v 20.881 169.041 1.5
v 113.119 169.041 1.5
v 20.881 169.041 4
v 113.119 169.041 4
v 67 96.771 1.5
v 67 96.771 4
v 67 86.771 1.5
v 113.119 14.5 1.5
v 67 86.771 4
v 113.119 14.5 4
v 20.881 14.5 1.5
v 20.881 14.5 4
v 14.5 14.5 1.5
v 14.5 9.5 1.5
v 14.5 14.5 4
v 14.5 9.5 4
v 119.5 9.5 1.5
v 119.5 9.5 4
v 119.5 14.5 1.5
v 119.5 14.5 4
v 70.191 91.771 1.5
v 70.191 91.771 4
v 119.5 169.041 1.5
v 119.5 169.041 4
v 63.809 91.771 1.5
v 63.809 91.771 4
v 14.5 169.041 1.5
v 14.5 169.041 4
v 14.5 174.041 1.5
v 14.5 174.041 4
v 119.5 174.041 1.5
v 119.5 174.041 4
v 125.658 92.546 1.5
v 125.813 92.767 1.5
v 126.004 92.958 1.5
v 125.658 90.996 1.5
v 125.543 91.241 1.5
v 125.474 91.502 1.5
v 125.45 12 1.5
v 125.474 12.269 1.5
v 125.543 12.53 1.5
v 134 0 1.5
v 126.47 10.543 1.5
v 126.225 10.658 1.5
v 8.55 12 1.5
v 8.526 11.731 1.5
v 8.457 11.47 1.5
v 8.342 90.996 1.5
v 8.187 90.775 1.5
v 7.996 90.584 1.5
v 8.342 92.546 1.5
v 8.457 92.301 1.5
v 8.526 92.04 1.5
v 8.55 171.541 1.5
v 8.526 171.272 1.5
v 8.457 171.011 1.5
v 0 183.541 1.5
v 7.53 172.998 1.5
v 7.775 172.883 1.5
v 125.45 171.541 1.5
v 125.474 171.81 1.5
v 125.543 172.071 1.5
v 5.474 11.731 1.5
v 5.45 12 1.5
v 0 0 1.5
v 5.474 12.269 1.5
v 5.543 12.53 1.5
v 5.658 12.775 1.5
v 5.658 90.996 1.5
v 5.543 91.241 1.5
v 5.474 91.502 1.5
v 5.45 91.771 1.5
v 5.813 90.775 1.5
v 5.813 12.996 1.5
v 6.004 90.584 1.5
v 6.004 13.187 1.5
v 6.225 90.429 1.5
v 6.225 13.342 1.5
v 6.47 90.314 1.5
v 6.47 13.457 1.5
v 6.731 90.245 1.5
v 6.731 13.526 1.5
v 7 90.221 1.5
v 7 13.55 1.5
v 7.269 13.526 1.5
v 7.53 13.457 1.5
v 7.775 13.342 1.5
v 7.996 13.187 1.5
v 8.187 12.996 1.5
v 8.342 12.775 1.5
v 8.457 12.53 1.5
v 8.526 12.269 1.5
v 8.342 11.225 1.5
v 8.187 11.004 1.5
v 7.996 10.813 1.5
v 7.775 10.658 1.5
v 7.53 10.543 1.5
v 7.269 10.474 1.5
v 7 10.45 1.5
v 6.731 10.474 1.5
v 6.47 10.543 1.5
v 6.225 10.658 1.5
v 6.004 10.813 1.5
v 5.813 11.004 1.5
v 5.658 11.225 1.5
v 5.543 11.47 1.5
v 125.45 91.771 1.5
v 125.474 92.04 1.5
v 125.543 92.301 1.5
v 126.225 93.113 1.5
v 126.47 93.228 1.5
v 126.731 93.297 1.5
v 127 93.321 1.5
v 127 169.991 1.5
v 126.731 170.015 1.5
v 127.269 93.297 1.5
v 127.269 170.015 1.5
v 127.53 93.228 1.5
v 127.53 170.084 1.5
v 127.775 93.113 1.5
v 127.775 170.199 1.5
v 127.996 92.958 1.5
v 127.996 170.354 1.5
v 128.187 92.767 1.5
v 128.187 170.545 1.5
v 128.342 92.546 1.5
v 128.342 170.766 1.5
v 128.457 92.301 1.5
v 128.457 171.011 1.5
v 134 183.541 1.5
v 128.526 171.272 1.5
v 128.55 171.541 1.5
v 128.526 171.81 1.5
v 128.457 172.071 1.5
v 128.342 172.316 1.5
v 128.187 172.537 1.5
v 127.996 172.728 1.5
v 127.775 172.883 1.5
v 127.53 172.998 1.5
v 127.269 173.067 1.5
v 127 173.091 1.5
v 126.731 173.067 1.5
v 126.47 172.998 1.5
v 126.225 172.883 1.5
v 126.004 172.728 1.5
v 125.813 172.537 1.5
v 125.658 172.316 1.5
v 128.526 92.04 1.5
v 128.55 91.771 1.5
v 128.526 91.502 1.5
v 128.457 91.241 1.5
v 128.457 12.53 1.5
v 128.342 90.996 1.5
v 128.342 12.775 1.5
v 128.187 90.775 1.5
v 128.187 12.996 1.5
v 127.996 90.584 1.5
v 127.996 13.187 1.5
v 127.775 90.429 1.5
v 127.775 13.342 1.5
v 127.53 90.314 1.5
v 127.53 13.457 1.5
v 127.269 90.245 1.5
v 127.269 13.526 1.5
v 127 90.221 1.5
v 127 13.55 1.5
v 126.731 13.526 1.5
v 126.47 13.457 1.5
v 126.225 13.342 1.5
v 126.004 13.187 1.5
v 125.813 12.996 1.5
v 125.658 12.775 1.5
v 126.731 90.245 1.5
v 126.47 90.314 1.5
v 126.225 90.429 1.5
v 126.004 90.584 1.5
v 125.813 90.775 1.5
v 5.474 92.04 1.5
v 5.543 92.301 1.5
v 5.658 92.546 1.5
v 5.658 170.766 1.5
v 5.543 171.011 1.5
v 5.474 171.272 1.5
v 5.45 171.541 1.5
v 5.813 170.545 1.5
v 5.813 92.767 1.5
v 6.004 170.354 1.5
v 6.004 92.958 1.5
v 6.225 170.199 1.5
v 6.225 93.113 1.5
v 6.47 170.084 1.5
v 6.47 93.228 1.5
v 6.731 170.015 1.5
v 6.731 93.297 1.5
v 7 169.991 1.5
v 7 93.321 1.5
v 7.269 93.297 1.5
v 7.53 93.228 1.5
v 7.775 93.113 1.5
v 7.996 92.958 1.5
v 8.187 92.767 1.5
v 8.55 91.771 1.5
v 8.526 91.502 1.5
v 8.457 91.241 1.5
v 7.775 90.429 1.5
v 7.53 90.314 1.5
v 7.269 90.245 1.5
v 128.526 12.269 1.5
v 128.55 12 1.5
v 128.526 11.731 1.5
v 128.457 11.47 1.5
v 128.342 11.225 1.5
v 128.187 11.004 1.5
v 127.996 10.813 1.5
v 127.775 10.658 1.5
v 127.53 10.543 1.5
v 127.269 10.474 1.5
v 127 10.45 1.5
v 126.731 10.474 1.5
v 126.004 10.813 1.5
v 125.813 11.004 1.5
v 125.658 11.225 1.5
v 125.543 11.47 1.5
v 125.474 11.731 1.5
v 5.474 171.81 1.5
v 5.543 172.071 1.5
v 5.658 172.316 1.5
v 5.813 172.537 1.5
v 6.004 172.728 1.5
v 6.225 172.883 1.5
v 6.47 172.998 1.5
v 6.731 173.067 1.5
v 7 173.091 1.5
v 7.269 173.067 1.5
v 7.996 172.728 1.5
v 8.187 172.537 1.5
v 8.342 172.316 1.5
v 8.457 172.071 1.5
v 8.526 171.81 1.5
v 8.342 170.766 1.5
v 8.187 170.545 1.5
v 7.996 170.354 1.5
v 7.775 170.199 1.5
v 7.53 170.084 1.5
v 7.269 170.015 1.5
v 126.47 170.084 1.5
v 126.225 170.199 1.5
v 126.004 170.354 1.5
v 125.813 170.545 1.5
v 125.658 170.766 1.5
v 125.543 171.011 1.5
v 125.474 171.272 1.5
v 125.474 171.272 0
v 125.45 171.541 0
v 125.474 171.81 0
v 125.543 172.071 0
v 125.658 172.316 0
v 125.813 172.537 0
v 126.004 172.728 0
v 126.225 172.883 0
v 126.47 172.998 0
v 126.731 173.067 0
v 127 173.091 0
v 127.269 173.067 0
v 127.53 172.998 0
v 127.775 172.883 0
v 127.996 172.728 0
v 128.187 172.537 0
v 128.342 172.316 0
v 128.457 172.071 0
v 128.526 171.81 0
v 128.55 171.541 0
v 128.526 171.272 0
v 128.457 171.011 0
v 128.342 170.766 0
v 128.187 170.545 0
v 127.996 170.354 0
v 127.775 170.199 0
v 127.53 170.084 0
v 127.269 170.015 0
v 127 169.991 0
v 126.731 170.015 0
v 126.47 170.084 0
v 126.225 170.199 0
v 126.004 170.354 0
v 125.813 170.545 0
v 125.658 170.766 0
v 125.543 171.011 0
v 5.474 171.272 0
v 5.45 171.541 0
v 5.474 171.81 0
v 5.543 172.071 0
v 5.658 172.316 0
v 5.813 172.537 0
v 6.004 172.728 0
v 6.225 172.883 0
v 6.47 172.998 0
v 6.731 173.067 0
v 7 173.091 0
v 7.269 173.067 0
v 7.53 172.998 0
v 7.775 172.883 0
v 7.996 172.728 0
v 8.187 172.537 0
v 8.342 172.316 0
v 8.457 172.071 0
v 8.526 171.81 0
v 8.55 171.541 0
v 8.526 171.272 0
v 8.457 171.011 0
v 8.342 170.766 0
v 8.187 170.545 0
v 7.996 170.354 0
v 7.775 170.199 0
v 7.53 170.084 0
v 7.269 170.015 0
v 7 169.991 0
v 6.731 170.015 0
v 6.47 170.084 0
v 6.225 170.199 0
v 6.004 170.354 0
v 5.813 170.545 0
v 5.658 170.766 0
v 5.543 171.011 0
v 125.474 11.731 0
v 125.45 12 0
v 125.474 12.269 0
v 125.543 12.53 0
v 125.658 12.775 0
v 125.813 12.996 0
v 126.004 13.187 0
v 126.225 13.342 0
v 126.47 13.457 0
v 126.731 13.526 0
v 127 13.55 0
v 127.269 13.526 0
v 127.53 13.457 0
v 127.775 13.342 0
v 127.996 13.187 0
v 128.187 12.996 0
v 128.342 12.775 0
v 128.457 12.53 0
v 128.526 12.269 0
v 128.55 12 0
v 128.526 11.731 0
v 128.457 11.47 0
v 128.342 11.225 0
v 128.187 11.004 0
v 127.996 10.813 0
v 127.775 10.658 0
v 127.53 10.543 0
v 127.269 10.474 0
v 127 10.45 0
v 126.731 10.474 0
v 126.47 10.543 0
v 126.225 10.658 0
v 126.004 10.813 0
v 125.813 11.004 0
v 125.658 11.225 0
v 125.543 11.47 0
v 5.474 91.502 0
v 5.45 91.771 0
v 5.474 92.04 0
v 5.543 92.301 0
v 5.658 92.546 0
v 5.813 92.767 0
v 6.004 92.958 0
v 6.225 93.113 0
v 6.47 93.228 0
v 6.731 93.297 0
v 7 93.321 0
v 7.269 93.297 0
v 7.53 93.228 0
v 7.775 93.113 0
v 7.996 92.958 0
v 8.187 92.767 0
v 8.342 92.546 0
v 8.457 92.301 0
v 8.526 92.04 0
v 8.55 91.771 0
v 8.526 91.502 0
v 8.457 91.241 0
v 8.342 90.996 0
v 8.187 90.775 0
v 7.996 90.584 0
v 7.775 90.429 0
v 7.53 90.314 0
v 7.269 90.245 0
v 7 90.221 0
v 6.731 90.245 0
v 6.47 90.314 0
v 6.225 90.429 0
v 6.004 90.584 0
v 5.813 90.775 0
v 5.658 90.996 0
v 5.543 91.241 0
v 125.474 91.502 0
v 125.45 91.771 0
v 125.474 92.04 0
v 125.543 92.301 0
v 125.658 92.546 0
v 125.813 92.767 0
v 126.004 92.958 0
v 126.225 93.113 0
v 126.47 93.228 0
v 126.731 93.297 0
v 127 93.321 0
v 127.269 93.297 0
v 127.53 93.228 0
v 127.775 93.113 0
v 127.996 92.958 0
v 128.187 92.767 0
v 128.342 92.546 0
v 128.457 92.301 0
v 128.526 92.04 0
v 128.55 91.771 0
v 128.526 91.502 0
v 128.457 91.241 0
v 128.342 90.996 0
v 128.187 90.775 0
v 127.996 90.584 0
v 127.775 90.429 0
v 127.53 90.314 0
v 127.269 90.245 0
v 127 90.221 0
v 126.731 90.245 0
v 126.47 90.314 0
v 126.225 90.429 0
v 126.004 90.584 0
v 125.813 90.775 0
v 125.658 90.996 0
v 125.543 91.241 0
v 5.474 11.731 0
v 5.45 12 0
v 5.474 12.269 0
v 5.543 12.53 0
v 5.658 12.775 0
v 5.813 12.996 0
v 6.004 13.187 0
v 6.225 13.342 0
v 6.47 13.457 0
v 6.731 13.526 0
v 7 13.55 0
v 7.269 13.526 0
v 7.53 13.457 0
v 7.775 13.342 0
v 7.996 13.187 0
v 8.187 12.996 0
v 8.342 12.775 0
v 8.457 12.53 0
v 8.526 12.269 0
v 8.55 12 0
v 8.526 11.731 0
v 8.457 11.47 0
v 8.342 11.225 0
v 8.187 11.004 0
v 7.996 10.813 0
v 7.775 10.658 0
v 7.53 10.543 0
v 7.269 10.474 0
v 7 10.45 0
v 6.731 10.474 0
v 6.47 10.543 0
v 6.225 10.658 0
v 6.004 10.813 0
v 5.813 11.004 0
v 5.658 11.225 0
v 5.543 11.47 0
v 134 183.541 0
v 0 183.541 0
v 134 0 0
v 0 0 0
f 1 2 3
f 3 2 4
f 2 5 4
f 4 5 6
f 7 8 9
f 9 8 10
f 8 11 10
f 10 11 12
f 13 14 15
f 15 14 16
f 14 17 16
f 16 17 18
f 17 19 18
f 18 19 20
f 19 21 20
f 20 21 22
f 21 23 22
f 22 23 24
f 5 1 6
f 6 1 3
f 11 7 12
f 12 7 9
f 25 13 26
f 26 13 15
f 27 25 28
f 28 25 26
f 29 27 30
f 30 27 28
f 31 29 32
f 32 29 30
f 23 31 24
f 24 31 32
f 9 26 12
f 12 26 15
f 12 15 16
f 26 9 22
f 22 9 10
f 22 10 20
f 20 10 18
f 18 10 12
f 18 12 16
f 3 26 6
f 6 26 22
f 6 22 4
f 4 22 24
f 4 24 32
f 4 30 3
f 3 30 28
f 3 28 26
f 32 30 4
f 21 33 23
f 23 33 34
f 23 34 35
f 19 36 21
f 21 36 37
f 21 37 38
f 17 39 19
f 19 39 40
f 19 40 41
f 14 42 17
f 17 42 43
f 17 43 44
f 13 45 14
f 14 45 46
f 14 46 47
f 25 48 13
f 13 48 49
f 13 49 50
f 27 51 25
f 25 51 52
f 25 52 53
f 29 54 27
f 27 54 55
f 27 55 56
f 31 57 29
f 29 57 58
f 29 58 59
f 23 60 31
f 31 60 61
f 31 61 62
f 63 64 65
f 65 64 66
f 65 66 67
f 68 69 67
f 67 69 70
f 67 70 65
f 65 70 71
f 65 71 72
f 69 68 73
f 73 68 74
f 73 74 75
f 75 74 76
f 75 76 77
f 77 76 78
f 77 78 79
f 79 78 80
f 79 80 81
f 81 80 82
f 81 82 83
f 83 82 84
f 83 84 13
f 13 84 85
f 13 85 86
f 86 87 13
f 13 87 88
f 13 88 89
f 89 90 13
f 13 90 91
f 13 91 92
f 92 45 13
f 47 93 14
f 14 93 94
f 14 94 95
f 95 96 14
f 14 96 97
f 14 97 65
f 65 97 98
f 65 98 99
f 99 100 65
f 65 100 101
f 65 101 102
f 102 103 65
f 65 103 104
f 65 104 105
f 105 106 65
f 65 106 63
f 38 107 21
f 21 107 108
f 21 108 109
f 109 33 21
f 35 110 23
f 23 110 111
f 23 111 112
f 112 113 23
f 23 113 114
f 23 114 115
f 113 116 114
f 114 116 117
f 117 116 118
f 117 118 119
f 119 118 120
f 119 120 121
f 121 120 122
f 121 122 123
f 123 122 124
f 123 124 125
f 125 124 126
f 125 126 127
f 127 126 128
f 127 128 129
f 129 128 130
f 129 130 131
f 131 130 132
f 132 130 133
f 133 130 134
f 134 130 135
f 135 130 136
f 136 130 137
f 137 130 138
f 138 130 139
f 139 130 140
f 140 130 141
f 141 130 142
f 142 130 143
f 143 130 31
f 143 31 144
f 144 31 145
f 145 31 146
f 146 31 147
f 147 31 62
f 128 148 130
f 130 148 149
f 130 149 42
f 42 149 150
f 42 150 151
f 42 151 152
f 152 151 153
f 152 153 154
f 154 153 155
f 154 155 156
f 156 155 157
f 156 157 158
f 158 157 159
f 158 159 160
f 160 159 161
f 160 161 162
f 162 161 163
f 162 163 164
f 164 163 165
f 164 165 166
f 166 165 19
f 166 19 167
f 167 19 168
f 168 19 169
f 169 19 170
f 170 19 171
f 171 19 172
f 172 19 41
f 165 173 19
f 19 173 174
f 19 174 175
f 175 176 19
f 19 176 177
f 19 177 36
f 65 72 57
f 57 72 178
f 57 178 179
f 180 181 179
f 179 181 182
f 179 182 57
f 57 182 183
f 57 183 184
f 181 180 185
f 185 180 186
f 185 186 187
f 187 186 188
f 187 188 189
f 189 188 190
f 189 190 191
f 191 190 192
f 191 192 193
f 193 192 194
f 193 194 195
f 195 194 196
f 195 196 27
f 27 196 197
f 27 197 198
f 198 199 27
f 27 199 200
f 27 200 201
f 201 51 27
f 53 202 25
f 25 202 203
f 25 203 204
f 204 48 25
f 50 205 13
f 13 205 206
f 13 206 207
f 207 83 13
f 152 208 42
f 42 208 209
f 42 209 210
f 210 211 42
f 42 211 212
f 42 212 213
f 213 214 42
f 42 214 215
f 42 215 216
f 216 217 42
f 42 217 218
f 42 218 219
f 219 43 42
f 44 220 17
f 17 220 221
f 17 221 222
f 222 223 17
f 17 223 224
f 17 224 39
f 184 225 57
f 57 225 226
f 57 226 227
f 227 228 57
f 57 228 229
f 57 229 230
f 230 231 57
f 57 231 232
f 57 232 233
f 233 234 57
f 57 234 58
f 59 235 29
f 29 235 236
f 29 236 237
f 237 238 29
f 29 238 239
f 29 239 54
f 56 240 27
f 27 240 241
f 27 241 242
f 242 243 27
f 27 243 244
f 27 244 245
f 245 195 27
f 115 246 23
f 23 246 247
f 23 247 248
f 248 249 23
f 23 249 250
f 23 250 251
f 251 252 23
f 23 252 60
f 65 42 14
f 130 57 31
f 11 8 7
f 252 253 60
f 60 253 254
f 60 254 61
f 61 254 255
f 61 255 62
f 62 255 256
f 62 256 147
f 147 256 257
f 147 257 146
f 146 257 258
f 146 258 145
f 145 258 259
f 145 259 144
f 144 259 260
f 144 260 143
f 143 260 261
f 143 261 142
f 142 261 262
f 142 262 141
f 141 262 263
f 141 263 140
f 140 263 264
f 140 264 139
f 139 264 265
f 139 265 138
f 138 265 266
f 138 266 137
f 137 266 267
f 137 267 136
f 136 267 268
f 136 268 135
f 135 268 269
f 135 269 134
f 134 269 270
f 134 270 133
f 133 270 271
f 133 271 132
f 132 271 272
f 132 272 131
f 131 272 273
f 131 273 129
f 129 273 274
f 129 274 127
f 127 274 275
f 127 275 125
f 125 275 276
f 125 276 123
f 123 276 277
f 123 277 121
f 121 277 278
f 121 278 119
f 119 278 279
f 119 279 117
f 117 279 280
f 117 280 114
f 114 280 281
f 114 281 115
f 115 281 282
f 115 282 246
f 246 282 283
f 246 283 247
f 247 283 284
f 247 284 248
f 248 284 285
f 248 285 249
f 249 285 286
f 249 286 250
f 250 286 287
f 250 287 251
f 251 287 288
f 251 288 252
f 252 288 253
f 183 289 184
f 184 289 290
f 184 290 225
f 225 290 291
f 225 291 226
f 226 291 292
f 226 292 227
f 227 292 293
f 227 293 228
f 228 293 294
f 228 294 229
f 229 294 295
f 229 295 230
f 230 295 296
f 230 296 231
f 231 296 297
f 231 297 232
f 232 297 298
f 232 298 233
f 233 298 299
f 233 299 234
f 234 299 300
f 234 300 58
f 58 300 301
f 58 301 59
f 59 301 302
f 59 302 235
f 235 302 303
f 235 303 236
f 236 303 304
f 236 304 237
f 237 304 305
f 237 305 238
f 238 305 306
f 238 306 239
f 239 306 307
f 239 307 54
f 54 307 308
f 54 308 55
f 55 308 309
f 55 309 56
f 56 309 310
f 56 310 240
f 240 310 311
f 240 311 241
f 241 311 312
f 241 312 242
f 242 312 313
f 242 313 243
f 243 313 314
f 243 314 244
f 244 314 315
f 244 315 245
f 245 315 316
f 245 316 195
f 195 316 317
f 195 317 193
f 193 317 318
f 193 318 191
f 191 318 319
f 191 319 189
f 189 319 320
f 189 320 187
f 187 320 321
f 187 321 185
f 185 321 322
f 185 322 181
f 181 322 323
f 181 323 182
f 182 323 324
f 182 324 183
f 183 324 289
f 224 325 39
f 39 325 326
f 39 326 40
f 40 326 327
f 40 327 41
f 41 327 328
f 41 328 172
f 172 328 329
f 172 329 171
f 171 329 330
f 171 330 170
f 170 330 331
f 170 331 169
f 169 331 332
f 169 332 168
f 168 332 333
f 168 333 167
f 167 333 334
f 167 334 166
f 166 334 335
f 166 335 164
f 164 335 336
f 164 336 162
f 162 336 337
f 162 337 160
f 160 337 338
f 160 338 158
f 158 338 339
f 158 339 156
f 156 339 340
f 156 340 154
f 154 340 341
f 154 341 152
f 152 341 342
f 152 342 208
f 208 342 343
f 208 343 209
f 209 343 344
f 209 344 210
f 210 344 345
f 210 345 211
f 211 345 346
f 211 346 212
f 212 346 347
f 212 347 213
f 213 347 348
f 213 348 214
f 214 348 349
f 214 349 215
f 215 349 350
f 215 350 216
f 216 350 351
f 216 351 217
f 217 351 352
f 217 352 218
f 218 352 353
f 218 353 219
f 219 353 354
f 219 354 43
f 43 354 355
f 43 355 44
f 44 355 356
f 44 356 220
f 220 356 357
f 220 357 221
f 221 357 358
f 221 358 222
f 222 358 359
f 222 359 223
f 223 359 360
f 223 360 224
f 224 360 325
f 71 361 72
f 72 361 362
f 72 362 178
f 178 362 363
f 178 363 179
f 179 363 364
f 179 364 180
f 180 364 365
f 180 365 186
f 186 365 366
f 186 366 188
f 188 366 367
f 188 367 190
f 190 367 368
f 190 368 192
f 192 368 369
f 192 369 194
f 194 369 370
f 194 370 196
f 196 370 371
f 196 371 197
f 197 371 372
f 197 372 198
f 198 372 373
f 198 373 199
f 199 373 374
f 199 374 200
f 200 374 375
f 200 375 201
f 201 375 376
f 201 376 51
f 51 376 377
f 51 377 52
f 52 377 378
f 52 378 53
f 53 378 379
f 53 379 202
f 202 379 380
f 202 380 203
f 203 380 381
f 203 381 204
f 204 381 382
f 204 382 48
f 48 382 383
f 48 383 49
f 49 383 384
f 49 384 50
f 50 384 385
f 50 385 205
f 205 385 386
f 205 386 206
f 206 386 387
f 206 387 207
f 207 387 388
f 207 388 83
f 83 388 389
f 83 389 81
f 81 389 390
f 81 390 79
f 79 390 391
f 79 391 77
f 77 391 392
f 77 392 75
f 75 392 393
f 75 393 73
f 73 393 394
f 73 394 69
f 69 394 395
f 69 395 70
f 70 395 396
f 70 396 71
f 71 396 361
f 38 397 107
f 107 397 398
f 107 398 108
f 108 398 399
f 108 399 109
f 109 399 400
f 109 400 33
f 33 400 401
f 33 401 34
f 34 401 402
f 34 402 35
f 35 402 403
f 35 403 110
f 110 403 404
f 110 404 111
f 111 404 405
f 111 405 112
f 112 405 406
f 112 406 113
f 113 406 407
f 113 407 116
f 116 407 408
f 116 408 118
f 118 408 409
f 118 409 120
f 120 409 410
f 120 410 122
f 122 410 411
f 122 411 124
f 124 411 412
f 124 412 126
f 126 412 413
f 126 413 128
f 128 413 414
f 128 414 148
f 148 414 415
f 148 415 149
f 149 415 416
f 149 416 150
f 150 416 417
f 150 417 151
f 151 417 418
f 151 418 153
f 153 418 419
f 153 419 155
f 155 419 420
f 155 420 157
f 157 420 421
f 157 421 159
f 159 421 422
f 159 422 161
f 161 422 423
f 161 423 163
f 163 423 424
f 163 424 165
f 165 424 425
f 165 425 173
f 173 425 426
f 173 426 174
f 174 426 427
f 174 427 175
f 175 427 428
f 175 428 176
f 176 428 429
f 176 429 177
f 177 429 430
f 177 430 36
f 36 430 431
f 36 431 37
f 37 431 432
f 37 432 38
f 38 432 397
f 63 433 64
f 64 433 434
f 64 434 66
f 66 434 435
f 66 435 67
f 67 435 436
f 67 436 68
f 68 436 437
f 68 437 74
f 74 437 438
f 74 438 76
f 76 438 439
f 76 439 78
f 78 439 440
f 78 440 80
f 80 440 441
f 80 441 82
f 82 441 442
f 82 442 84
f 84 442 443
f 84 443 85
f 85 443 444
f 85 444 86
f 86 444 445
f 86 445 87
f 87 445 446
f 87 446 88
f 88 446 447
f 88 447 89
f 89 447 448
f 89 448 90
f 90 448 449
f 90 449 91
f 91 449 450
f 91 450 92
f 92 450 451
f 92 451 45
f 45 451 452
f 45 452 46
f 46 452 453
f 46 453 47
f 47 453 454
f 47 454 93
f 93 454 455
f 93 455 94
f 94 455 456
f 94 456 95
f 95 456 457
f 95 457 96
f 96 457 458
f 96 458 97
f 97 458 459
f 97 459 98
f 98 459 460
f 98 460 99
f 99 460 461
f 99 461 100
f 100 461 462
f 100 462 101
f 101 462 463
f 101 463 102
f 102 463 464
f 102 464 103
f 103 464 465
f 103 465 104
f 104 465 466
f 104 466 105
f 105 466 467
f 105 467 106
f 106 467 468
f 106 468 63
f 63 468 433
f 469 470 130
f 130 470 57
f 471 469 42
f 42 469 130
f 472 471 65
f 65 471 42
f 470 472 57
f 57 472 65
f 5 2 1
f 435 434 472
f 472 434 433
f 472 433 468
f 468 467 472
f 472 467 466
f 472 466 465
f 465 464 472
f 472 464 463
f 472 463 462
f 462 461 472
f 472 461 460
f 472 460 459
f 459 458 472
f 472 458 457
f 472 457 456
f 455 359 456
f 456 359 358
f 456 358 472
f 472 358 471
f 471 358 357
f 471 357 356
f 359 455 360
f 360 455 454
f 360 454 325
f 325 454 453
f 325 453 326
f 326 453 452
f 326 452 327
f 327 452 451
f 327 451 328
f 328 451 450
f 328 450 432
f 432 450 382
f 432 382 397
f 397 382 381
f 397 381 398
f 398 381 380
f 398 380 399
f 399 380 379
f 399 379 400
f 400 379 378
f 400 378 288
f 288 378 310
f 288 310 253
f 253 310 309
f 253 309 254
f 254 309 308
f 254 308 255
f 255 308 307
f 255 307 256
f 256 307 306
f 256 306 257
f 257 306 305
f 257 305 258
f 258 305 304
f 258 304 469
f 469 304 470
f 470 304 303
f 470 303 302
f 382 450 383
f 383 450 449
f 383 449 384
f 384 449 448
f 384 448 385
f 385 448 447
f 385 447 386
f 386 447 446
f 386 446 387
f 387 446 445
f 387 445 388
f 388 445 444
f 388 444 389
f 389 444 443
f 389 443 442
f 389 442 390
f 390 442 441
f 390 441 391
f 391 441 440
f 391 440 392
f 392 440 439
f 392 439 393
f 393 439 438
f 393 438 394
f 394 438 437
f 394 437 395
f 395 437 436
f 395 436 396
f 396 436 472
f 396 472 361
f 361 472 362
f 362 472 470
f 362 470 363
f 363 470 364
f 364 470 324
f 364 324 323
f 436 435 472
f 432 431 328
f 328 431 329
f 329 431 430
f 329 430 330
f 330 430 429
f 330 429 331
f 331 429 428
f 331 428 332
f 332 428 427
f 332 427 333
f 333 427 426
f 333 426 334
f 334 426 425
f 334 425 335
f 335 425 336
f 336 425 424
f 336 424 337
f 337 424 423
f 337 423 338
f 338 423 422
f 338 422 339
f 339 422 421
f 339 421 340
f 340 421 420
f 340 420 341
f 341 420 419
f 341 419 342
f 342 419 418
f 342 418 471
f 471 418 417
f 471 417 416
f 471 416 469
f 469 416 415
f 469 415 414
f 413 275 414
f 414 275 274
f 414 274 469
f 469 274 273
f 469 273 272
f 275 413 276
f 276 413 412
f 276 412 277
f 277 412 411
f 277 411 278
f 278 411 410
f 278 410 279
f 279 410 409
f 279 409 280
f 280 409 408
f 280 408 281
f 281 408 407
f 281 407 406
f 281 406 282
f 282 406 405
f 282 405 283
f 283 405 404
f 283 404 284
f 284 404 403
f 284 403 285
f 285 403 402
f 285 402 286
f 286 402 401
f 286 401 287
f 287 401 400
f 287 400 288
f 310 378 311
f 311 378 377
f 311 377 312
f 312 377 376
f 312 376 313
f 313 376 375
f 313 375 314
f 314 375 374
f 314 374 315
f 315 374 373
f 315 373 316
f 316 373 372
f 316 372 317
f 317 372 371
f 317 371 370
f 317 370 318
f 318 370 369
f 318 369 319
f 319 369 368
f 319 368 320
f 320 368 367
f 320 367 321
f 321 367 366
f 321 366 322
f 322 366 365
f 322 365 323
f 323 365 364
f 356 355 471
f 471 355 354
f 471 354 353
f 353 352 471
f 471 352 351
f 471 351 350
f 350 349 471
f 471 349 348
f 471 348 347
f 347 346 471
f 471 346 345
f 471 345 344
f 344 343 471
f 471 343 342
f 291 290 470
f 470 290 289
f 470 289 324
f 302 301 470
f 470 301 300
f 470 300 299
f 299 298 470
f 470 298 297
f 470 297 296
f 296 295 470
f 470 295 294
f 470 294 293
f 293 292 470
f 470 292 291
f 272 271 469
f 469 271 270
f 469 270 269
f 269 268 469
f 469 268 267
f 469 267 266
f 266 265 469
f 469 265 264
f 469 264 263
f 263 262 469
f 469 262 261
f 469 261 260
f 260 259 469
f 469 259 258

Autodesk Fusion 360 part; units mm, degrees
sketch "Sketch1" plane through (0, 0, 0) normal (0, 0, 1) x (1, 0, 0)
  line L0 (0, 0) -> (134, 0)
  line L1 (134, 0) -> (134, 183.541)
  line L2 (134, 183.541) -> (0, 183.541)
  line L3 (0, 183.541) -> (0, 0)
  circle A0 centre (7, 171.541) radius 1.55
  circle A1 centre (7, 12) radius 1.55
  circle A2 centre (7, 91.771) radius 1.55
  line L4 (67, 0) -> (67, 183.541) construction
  circle A3 centre (127, 12) radius 1.55
  circle A4 centre (127, 91.771) radius 1.55
  circle A5 centre (127, 171.541) radius 1.55
  line L5 (119.5, 174.041) -> (14.5, 174.041)
  line L6 (14.5, 174.041) -> (14.5, 169.041)
  line L7 (14.5, 169.041) -> (119.5, 169.041)
  line L8 (119.5, 169.041) -> (119.5, 174.041)
  line L9 (119.5, 174.041) -> (14.5, 169.041) construction
  line L10 (14.5, 174.041) -> (119.5, 169.041) construction
  line L11 (119.5, 9.5) -> (14.5, 9.5)
  line L12 (14.5, 9.5) -> (14.5, 14.5)
  line L13 (14.5, 14.5) -> (119.5, 14.5)
  line L14 (119.5, 14.5) -> (119.5, 9.5)
  line L15 (119.5, 9.5) -> (14.5, 14.5) construction
  line L16 (14.5, 9.5) -> (119.5, 14.5) construction
  line L17 (14.5, 9.5) -> (119.5, 174.041)
  line L18 (14.5, 14.5) -> (116.3093, 174.041)
  line L19 (119.5, 169.041) -> (17.6907, 9.5)
  line L20 (14.5, 174.041) -> (119.5, 9.5)
  line L21 (119.5, 14.5) -> (17.6907, 174.041)
  line L22 (14.5, 169.041) -> (116.3093, 9.5)
  point P0 (67, 171.541)
  point P1 (67, 12)
  dimension "d1" = 183.541
  dimension "d2" = 134
  dimension "d3" = 3.1
  dimension "d4" = 7
  dimension "d5" = 12
  dimension "d6" = 3.1
  dimension "d7" = 7
  dimension "d8" = 12
  dimension "d9" = 3.1
  dimension "d10" = 7
  dimension "d11" = 91.77
  dimension "d12" = 105
  dimension "d13" = 5
  dimension "d14" = 105
  dimension "d15" = 5
extrude "Extrude1" add sketch "Sketch1" along normal blind 1.5 contours L0 L1 L2 L3 | L5 L7 L17 L18 | L7 L8 L17 | L5 L7 L18 L21 | L7 L17 L19 L21 | L7 L17 L18 L21 | L5 L7 L20 L21 | L7 L18 L21 | L13 L19 L20 L21 | L17 L19 L20 L21 | L17 L18 L20 L21 | L6 L7 L20 | L7 L18 L20 L21 | L13 L19 L20 L22 | L17 L19 L20 L22 | L13 L14 L20 | L17 L18 L20 L22 | L7 L18 L20 L22 | L13 L19 L22 | L13 L17 L19 L22 | L11 L13 L20 L22 | L13 L17 L18 L22 | L11 L13 L17 L19 | L11 L13 L19 L22 | L12 L13 L17
extrude "Extrude2" add sketch "Sketch1" along normal blind 4 contours L5 L7 L17 L18 | L7 L8 L17 | L5 L7 L18 L21 | L7 L17 L19 L21 | L7 L17 L18 L21 | L5 L7 L20 L21 | L13 L19 L20 L21 | L17 L19 L20 L21 | L17 L18 L20 L21 | L6 L7 L20 | L7 L18 L20 L21 | L13 L19 L20 L22 | L17 L19 L20 L22 | L13 L14 L20 | L17 L18 L20 L22 | L7 L18 L20 L22 | L13 L17 L19 L22 | L11 L13 L20 L22 | L13 L17 L18 L22 | L11 L13 L17 L19 | L11 L13 L19 L22 | L12 L13 L17
equation "d6 = d3"
equation "d7 = d4"
equation "d8 = d5"
equation "d9 = d3"
